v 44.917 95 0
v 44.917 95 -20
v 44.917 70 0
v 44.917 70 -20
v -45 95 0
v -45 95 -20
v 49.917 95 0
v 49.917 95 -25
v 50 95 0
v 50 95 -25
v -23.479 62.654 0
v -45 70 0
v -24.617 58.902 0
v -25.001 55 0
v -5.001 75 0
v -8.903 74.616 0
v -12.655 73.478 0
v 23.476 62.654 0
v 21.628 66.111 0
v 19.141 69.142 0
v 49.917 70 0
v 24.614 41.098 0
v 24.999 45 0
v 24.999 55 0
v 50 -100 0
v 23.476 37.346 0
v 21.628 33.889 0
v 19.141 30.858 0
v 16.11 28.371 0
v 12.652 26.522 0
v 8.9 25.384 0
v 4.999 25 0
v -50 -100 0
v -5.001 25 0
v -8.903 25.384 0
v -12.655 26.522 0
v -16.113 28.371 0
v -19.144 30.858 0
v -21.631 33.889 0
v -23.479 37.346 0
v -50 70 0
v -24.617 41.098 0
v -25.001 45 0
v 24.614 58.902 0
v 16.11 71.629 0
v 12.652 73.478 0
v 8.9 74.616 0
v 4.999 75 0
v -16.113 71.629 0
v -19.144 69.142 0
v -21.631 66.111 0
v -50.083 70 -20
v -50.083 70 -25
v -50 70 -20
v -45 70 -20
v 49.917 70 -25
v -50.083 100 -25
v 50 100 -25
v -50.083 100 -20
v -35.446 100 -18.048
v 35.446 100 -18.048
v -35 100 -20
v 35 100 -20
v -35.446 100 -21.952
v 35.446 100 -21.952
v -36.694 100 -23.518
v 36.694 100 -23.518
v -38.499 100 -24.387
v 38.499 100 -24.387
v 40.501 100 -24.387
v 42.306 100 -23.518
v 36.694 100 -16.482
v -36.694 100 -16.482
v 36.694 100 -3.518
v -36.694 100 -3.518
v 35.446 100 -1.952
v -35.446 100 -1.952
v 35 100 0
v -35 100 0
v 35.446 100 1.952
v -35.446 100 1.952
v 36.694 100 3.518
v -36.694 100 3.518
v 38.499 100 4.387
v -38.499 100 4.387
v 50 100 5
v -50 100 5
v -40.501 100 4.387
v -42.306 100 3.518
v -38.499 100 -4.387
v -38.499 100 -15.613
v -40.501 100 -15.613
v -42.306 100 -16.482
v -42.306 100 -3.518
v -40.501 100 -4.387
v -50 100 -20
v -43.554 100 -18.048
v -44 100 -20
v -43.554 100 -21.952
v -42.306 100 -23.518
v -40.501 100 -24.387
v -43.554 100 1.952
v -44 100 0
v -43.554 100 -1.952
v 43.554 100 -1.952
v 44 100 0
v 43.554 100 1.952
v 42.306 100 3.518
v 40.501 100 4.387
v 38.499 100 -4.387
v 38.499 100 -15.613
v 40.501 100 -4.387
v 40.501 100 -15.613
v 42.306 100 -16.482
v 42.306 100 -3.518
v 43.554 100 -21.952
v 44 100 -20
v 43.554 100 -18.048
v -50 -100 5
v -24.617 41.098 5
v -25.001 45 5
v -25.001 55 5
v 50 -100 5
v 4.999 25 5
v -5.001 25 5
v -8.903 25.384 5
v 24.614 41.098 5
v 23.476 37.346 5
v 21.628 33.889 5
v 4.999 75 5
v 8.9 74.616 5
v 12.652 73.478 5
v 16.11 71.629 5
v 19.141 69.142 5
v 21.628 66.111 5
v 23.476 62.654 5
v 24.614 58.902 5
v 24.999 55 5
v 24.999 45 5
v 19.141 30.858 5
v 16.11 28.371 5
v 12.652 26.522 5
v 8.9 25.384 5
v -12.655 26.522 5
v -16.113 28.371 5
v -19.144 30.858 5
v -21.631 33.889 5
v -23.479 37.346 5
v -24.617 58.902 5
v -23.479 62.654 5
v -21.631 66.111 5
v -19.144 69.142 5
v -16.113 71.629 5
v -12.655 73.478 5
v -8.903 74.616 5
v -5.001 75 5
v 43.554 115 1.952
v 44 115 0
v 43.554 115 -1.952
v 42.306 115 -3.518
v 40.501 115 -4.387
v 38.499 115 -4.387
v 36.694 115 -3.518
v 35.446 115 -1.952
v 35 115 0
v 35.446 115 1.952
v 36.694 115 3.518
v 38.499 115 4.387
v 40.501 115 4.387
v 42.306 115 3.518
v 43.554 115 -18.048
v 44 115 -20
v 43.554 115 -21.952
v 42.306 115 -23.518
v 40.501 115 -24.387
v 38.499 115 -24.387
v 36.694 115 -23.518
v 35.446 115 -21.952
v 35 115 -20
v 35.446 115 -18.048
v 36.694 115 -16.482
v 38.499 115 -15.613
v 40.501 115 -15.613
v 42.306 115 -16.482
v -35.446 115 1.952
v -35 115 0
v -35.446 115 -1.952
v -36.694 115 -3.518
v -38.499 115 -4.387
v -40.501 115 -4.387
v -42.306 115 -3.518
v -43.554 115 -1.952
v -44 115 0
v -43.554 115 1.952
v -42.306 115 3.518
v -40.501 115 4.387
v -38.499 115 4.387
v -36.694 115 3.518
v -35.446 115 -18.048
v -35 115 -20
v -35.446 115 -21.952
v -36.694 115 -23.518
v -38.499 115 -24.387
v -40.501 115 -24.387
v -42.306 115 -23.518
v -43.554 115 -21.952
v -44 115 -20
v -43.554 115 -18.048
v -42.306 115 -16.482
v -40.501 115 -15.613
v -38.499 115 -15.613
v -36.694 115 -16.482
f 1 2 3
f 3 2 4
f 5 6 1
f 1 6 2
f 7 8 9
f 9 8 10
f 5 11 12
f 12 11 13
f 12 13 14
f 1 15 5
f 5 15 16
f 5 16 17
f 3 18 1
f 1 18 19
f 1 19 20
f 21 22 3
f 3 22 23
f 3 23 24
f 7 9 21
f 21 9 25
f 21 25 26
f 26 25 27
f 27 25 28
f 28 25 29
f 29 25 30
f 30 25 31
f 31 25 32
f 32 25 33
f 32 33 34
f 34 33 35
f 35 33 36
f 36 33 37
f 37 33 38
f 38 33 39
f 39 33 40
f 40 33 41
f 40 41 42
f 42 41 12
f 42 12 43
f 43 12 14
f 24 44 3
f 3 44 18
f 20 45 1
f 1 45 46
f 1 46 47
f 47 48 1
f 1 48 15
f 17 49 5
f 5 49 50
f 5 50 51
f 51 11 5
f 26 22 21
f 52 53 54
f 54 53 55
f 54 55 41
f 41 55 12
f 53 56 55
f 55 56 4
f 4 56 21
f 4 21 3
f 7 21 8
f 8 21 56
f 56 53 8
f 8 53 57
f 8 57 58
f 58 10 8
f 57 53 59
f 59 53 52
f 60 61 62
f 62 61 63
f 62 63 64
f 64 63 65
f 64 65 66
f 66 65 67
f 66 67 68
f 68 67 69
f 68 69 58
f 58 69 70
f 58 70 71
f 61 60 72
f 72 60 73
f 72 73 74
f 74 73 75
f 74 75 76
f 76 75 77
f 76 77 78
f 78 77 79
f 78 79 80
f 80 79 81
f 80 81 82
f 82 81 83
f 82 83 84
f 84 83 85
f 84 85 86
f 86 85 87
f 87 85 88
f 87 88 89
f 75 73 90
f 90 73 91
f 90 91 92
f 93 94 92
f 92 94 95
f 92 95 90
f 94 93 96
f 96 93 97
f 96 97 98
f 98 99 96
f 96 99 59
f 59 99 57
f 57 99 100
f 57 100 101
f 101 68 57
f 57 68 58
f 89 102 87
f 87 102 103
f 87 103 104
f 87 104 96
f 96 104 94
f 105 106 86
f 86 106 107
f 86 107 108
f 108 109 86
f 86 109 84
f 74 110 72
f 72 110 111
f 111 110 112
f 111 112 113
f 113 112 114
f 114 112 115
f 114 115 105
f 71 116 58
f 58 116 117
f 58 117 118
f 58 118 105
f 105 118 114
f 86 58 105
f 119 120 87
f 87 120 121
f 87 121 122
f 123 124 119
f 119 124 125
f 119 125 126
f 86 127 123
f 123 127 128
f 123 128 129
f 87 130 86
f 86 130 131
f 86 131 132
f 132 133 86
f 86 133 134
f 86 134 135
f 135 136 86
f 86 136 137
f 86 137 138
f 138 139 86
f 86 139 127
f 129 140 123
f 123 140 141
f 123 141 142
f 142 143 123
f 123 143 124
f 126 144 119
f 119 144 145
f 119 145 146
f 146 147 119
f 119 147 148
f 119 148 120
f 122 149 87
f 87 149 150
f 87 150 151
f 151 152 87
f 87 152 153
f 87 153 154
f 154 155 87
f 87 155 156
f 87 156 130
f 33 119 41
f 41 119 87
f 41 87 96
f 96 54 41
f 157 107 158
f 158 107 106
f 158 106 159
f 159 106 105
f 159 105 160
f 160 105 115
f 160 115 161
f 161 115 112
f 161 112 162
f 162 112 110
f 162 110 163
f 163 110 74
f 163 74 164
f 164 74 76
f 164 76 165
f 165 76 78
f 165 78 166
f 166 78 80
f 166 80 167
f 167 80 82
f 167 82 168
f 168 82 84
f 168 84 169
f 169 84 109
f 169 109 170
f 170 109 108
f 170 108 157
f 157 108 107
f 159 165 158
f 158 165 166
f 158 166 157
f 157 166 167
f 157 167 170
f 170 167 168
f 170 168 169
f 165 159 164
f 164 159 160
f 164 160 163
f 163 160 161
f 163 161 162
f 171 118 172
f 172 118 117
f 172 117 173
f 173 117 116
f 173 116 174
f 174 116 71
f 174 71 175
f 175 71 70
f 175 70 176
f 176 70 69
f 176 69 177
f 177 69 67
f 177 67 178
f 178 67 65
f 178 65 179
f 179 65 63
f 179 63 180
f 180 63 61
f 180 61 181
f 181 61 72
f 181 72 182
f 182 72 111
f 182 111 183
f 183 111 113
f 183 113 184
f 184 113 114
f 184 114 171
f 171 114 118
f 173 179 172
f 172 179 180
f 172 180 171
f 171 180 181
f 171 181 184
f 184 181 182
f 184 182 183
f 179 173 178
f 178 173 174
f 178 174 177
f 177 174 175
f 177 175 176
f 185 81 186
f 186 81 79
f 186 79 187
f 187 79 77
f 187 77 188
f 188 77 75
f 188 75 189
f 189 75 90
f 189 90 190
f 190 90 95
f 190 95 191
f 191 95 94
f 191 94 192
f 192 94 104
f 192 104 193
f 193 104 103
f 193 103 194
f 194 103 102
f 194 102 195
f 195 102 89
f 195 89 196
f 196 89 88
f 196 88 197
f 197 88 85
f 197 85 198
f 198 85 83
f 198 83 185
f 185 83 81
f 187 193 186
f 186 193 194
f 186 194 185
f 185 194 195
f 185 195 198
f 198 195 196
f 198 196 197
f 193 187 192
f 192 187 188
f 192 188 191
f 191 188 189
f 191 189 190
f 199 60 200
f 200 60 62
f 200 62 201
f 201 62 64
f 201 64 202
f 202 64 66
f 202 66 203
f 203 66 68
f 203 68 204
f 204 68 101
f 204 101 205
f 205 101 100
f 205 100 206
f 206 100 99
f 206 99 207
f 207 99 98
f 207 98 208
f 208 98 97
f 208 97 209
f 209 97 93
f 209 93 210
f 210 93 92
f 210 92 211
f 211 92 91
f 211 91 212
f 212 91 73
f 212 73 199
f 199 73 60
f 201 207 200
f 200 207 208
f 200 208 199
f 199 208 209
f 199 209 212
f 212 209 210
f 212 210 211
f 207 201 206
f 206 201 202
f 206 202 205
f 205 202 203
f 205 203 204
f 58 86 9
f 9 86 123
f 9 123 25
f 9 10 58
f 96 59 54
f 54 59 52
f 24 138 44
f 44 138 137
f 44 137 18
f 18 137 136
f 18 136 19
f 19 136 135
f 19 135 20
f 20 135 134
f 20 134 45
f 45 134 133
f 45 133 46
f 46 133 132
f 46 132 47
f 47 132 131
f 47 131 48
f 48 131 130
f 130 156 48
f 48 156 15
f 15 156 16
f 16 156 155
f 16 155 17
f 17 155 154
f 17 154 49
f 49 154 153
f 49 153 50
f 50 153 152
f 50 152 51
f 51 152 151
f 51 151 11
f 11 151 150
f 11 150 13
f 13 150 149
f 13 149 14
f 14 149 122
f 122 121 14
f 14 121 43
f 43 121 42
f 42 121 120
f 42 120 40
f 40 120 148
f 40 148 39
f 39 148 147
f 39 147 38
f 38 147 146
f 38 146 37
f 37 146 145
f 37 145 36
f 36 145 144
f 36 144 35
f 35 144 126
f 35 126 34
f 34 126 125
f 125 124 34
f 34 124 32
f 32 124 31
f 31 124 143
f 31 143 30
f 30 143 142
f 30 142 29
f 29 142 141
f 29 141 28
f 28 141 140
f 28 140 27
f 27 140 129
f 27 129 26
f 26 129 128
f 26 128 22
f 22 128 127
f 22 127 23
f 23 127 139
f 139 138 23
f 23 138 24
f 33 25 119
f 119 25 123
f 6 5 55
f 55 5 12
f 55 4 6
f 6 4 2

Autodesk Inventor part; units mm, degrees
ref_plane "YZ Plane" through (0, 0, 0) normal (1, 0, 0) x (0, 1, 0)
ref_plane "XZ Plane" through (0, 0, 0) normal (0, 1, 0) x (-1, 0, 0)
ref_plane "XY Plane" through (0, 0, 0) normal (0, 0, 1) x (1, 0, 0)
sketch "Sketch1" plane through (0, 0, 0) normal (0, 0, 1) x (1, 0, 0)
  line L0 (-50, -100) -> (50, -100)
  line L1 (50, -100) -> (50, 100)
  line L2 (50, 100) -> (-50, 100)
  line L3 (-50, 100) -> (-50, -100)
  line L4 (-50, -100) -> (50, 100) construction
  line L5 (50, -100) -> (-50, 100) construction
  point P0 (0, 0)
  dimension "d0" = 100
  dimension "d1" = 200
extrude "Extrusion1" add sketch "Sketch1" along normal blind 5
sketch "Sketch6" plane through (0, 0, 5) normal (0, 0, 1) x (1, 0, 0)
  line L0 (4.9986, 75) -> (-5.0014, 75)
  line L1 (-25.0014, 55) -> (-25.0014, 45)
  line L2 (-5.0014, 25) -> (4.9986, 25)
  line L3 (24.9986, 45) -> (24.9986, 55)
  line L4 (24.9986, 75) -> (-25.0014, 25) construction
  line L5 (-25.0014, 75) -> (24.9986, 25) construction
  arc A0 (4.9986, 25) -> (24.9986, 45) centre (4.9986, 45) ccw
  arc A1 (24.9986, 55) -> (4.9986, 75) centre (4.9986, 55) ccw
  arc A2 (-5.0014, 75) -> (-25.0014, 55) centre (-5.0014, 55) ccw
  arc A3 (-25.0014, 45) -> (-5.0014, 25) centre (-5.0014, 45) ccw
  point P0 (0, 0)
  point P1 (-0.0014, 50)
  dimension "d21" = 50
  dimension "d22" = 50
  dimension "d23" = 20
extrude "Extrusion6" cut sketch "Sketch6" against normal blind 5
sketch "Sketch15" plane through (-50, 100, 5) normal (0, 1, 0) x (1, 0, 0)
  line L0 (100, 0) -> (0, 0) projected
  line L1 (0, 0) -> (100, 0)
  line L2 (100, 0) -> (100, 30)
  line L3 (100, 30) -> (0, 30)
  line L4 (0, 30) -> (0, 0)
  point P0 (50, 5)
  dimension "d46" = 100
  dimension "d47" = 30
sketch "Sketch16" plane through (-50, 100, 5) normal (0, 1, 0) x (1, 0, 0)
  circle A0 centre (10.5, 5) radius 4.5
  circle A1 centre (89.5, 5) radius 4.5
  circle A2 centre (10.5, 25) radius 4.5
  circle A3 centre (89.5, 25) radius 4.5
  point P0 (50, 5)
  dimension "d48" = 9
  dimension "d49" = 9
  dimension "d50" = 9
  dimension "d51" = 9
extrude "Extrusion11" add sketch "Sketch15" against normal blind 5
extrude "Extrusion12" add sketch "Sketch16" along normal blind 15
sketch "Sketch17" plane through (50, 100, -25) normal (0, 0, -1) x (-1, 0, 0)
  line L0 (100.0829, 0) -> (0.0829, 0)
  line L1 (0.0829, 0) -> (0.0829, -30)
  line L2 (0.0829, -30) -> (100.0829, -30)
  line L3 (100.0829, -30) -> (100.0829, 0)
  point P0 (50, -100)
  dimension "d56" = 100
  dimension "d57" = 30
extrude "Extrusion13" add sketch "Sketch17" against normal blind 5
sketch "Sketch18" plane through (49.9171, 70, -25) normal (1, 0, 0) x (0, 0, -1)
  line L0 (0, 0) -> (-5, 0) projected
  line L1 (-30, 30) -> (-30, -170) projected
  line L2 (0, 0) -> (-30, 0)
  line L3 (-30, 0) -> (-30, 30)
  line L4 (-30, 30) -> (0, 30)
  line L5 (0, 30) -> (0, 0)
  point P0 (-25, -70)
extrude "Extrusion14" add sketch "Sketch18" against normal blind 5
sketch "Sketch20" plane through (-50, -100, 5) normal (-1, 0, 0) x (0, 0, 1)
  line L0 (-30, 200) -> (0, 200) projected
  line L1 (-30, 170) -> (-30, 200) projected
  line L2 (0, 200) -> (-30, 200)
  line L3 (-30, 200) -> (-30, 170)
  line L4 (-30, 170) -> (0, 170)
  line L5 (0, 170) -> (0, 200)
  point P0 (-5, 100)
extrude "Extrusion16" add sketch "Sketch20" against normal blind 5
properties part number "fixation_v02"
